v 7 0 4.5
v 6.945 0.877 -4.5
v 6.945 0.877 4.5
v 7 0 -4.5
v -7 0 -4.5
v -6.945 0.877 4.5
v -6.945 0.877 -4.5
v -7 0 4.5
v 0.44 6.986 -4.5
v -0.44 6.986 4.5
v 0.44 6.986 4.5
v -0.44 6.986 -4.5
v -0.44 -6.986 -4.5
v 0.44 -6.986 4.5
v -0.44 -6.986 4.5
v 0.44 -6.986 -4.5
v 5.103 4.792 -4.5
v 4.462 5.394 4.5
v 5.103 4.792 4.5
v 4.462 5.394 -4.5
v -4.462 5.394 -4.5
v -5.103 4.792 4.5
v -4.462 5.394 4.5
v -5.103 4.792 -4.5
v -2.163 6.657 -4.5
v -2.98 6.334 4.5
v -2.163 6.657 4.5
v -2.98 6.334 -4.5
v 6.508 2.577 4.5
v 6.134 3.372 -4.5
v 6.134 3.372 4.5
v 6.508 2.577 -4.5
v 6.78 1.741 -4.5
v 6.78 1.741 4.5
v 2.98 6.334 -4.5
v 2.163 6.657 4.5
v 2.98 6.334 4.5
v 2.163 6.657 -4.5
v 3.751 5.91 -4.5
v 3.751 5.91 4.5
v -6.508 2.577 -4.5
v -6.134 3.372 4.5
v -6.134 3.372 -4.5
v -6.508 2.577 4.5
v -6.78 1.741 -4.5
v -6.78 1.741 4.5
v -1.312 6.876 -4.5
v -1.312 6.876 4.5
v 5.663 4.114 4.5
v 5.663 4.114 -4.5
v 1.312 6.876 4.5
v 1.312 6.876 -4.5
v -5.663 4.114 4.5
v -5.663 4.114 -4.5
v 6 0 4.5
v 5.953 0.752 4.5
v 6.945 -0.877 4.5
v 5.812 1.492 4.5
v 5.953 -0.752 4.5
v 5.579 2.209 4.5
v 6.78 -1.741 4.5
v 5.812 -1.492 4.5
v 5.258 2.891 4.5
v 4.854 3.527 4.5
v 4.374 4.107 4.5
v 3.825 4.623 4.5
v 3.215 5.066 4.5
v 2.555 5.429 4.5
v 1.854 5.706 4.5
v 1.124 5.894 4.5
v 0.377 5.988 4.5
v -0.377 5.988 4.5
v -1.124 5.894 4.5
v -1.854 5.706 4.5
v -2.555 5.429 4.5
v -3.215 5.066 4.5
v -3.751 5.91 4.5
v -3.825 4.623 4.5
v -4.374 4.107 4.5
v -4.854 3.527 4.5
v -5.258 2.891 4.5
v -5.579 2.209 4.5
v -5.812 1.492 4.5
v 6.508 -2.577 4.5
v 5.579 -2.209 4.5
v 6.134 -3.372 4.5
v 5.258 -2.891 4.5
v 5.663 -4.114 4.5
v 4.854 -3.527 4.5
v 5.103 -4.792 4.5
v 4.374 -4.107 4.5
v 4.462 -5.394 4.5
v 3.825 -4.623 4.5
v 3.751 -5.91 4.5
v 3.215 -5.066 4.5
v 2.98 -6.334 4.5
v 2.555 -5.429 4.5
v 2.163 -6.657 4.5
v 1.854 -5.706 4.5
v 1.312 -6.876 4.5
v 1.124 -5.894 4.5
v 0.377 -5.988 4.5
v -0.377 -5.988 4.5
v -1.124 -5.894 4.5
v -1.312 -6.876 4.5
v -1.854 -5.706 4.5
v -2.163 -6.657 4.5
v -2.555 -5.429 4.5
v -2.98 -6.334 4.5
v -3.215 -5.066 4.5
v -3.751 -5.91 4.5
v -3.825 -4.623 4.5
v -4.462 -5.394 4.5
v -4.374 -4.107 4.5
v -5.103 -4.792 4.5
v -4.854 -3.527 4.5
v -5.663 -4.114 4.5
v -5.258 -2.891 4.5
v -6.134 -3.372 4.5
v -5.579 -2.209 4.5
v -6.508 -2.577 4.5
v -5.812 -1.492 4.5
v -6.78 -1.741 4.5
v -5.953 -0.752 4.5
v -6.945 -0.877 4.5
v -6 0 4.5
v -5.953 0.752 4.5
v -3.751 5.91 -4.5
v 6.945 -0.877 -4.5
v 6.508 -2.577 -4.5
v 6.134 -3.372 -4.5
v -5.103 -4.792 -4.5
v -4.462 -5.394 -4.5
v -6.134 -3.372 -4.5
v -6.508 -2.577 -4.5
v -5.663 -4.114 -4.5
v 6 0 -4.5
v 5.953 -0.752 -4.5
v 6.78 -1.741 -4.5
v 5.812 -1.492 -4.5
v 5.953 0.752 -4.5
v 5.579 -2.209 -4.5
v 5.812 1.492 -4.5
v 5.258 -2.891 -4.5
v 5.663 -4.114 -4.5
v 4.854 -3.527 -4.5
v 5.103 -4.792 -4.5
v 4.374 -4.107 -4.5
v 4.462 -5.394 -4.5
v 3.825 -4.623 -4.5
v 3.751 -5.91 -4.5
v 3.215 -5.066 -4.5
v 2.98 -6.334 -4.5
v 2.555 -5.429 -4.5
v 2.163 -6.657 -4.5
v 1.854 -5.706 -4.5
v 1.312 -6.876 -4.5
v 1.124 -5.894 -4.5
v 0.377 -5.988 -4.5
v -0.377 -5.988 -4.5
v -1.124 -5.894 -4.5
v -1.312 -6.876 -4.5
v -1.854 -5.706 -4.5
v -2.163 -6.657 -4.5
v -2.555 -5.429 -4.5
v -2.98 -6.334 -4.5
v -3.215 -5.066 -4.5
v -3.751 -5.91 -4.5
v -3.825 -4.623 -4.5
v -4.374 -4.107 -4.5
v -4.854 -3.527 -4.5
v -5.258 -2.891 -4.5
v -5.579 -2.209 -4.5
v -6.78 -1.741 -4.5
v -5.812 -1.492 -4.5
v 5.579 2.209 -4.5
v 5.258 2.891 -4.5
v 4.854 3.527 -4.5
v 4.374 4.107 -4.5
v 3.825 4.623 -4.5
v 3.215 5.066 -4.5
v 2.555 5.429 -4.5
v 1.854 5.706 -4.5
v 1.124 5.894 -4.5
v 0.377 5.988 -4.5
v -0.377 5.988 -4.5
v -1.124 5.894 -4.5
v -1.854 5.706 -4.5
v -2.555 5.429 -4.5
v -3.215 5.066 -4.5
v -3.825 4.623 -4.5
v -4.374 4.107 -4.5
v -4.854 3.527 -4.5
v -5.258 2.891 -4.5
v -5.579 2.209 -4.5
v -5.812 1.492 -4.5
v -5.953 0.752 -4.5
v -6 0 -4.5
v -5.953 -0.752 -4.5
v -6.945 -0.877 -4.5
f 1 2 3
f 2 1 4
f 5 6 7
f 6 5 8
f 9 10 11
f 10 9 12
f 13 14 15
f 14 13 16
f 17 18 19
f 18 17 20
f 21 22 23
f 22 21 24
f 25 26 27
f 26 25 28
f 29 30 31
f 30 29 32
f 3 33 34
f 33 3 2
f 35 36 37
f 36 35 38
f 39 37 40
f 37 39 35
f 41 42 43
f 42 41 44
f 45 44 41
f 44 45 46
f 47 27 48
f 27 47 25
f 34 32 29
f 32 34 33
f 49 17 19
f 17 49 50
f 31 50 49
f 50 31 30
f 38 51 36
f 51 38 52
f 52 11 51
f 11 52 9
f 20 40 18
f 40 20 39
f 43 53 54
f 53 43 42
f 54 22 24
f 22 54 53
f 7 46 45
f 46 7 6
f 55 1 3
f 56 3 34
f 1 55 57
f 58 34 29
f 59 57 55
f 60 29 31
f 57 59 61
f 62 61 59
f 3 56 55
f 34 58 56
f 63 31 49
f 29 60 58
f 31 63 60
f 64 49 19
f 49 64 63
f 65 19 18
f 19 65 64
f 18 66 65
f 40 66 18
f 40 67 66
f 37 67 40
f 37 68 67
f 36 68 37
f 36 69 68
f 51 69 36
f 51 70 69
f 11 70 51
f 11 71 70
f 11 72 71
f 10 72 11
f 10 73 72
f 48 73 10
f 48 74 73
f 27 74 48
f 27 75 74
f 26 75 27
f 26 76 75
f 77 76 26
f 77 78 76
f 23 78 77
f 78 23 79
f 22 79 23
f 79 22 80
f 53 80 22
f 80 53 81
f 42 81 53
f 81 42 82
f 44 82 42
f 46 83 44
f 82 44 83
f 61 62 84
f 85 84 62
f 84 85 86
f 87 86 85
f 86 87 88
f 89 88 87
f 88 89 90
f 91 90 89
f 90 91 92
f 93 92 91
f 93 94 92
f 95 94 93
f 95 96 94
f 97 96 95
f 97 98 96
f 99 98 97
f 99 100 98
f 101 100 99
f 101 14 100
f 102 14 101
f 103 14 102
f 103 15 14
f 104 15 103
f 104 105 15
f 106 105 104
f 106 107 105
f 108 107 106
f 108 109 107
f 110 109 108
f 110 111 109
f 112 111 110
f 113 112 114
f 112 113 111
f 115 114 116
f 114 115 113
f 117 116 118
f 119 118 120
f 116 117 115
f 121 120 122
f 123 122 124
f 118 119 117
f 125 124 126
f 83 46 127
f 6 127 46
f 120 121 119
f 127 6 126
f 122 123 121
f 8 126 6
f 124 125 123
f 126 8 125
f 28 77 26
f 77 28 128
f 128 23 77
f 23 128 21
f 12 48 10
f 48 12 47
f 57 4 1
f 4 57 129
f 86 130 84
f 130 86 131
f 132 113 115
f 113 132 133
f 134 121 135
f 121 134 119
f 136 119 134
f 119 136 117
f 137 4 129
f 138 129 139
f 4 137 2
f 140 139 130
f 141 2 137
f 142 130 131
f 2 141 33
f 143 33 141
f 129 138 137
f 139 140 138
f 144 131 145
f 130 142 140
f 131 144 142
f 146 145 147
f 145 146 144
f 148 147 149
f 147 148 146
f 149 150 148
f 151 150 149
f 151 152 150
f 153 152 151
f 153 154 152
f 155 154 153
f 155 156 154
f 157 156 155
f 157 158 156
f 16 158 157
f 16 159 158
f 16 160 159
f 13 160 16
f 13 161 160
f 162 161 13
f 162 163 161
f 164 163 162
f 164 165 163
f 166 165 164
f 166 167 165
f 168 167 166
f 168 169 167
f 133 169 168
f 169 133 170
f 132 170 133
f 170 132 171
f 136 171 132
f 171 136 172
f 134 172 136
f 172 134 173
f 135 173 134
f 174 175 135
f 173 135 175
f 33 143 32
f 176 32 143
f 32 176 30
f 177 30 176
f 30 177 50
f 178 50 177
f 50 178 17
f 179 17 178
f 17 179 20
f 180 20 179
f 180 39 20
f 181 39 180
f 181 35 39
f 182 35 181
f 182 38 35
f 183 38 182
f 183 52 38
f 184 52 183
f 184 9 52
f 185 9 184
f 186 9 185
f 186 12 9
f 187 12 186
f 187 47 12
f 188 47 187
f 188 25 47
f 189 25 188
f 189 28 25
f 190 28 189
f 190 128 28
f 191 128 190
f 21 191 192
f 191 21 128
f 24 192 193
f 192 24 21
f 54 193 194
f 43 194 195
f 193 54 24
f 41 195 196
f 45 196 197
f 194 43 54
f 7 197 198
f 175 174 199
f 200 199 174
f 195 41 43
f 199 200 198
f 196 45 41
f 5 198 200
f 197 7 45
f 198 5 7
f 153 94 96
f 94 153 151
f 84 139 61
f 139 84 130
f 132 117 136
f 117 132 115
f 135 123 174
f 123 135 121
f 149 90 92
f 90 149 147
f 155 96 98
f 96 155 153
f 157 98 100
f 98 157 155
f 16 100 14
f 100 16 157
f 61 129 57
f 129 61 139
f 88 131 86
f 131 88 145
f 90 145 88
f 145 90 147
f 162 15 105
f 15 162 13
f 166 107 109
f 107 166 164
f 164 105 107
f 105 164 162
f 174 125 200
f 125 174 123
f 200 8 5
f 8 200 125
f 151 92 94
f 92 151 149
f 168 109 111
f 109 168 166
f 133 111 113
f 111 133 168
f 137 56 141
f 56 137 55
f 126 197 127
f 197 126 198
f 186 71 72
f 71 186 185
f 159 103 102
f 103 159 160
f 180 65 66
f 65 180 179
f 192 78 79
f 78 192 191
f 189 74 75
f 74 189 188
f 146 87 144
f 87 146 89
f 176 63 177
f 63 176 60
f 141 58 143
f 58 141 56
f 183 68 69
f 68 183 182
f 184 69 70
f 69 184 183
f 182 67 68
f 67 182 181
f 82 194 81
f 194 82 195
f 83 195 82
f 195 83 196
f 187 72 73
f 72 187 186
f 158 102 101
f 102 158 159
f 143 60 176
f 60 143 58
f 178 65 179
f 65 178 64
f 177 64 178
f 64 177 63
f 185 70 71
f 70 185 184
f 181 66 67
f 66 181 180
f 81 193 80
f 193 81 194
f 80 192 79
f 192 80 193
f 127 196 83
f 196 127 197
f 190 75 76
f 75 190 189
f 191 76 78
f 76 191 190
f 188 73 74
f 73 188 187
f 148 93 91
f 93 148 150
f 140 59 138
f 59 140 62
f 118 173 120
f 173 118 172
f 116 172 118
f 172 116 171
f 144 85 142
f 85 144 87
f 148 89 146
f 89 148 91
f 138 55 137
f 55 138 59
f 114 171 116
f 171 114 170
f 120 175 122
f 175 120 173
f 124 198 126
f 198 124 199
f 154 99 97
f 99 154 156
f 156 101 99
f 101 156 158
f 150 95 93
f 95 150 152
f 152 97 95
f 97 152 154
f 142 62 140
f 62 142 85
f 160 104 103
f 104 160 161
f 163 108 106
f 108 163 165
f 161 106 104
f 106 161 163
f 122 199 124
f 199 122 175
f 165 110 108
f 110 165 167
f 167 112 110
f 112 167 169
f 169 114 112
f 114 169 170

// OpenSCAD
$fn = 50;


difference() {
	union() {
		translate(v = [0, 0, -4.5000000000]) {
			cylinder(h = 9, r = 7.0000000000);
		}
	}
	union() {
		translate(v = [0, 0, -100.0000000000]) {
			cylinder(h = 200, r = 6);
		}
	}
}
